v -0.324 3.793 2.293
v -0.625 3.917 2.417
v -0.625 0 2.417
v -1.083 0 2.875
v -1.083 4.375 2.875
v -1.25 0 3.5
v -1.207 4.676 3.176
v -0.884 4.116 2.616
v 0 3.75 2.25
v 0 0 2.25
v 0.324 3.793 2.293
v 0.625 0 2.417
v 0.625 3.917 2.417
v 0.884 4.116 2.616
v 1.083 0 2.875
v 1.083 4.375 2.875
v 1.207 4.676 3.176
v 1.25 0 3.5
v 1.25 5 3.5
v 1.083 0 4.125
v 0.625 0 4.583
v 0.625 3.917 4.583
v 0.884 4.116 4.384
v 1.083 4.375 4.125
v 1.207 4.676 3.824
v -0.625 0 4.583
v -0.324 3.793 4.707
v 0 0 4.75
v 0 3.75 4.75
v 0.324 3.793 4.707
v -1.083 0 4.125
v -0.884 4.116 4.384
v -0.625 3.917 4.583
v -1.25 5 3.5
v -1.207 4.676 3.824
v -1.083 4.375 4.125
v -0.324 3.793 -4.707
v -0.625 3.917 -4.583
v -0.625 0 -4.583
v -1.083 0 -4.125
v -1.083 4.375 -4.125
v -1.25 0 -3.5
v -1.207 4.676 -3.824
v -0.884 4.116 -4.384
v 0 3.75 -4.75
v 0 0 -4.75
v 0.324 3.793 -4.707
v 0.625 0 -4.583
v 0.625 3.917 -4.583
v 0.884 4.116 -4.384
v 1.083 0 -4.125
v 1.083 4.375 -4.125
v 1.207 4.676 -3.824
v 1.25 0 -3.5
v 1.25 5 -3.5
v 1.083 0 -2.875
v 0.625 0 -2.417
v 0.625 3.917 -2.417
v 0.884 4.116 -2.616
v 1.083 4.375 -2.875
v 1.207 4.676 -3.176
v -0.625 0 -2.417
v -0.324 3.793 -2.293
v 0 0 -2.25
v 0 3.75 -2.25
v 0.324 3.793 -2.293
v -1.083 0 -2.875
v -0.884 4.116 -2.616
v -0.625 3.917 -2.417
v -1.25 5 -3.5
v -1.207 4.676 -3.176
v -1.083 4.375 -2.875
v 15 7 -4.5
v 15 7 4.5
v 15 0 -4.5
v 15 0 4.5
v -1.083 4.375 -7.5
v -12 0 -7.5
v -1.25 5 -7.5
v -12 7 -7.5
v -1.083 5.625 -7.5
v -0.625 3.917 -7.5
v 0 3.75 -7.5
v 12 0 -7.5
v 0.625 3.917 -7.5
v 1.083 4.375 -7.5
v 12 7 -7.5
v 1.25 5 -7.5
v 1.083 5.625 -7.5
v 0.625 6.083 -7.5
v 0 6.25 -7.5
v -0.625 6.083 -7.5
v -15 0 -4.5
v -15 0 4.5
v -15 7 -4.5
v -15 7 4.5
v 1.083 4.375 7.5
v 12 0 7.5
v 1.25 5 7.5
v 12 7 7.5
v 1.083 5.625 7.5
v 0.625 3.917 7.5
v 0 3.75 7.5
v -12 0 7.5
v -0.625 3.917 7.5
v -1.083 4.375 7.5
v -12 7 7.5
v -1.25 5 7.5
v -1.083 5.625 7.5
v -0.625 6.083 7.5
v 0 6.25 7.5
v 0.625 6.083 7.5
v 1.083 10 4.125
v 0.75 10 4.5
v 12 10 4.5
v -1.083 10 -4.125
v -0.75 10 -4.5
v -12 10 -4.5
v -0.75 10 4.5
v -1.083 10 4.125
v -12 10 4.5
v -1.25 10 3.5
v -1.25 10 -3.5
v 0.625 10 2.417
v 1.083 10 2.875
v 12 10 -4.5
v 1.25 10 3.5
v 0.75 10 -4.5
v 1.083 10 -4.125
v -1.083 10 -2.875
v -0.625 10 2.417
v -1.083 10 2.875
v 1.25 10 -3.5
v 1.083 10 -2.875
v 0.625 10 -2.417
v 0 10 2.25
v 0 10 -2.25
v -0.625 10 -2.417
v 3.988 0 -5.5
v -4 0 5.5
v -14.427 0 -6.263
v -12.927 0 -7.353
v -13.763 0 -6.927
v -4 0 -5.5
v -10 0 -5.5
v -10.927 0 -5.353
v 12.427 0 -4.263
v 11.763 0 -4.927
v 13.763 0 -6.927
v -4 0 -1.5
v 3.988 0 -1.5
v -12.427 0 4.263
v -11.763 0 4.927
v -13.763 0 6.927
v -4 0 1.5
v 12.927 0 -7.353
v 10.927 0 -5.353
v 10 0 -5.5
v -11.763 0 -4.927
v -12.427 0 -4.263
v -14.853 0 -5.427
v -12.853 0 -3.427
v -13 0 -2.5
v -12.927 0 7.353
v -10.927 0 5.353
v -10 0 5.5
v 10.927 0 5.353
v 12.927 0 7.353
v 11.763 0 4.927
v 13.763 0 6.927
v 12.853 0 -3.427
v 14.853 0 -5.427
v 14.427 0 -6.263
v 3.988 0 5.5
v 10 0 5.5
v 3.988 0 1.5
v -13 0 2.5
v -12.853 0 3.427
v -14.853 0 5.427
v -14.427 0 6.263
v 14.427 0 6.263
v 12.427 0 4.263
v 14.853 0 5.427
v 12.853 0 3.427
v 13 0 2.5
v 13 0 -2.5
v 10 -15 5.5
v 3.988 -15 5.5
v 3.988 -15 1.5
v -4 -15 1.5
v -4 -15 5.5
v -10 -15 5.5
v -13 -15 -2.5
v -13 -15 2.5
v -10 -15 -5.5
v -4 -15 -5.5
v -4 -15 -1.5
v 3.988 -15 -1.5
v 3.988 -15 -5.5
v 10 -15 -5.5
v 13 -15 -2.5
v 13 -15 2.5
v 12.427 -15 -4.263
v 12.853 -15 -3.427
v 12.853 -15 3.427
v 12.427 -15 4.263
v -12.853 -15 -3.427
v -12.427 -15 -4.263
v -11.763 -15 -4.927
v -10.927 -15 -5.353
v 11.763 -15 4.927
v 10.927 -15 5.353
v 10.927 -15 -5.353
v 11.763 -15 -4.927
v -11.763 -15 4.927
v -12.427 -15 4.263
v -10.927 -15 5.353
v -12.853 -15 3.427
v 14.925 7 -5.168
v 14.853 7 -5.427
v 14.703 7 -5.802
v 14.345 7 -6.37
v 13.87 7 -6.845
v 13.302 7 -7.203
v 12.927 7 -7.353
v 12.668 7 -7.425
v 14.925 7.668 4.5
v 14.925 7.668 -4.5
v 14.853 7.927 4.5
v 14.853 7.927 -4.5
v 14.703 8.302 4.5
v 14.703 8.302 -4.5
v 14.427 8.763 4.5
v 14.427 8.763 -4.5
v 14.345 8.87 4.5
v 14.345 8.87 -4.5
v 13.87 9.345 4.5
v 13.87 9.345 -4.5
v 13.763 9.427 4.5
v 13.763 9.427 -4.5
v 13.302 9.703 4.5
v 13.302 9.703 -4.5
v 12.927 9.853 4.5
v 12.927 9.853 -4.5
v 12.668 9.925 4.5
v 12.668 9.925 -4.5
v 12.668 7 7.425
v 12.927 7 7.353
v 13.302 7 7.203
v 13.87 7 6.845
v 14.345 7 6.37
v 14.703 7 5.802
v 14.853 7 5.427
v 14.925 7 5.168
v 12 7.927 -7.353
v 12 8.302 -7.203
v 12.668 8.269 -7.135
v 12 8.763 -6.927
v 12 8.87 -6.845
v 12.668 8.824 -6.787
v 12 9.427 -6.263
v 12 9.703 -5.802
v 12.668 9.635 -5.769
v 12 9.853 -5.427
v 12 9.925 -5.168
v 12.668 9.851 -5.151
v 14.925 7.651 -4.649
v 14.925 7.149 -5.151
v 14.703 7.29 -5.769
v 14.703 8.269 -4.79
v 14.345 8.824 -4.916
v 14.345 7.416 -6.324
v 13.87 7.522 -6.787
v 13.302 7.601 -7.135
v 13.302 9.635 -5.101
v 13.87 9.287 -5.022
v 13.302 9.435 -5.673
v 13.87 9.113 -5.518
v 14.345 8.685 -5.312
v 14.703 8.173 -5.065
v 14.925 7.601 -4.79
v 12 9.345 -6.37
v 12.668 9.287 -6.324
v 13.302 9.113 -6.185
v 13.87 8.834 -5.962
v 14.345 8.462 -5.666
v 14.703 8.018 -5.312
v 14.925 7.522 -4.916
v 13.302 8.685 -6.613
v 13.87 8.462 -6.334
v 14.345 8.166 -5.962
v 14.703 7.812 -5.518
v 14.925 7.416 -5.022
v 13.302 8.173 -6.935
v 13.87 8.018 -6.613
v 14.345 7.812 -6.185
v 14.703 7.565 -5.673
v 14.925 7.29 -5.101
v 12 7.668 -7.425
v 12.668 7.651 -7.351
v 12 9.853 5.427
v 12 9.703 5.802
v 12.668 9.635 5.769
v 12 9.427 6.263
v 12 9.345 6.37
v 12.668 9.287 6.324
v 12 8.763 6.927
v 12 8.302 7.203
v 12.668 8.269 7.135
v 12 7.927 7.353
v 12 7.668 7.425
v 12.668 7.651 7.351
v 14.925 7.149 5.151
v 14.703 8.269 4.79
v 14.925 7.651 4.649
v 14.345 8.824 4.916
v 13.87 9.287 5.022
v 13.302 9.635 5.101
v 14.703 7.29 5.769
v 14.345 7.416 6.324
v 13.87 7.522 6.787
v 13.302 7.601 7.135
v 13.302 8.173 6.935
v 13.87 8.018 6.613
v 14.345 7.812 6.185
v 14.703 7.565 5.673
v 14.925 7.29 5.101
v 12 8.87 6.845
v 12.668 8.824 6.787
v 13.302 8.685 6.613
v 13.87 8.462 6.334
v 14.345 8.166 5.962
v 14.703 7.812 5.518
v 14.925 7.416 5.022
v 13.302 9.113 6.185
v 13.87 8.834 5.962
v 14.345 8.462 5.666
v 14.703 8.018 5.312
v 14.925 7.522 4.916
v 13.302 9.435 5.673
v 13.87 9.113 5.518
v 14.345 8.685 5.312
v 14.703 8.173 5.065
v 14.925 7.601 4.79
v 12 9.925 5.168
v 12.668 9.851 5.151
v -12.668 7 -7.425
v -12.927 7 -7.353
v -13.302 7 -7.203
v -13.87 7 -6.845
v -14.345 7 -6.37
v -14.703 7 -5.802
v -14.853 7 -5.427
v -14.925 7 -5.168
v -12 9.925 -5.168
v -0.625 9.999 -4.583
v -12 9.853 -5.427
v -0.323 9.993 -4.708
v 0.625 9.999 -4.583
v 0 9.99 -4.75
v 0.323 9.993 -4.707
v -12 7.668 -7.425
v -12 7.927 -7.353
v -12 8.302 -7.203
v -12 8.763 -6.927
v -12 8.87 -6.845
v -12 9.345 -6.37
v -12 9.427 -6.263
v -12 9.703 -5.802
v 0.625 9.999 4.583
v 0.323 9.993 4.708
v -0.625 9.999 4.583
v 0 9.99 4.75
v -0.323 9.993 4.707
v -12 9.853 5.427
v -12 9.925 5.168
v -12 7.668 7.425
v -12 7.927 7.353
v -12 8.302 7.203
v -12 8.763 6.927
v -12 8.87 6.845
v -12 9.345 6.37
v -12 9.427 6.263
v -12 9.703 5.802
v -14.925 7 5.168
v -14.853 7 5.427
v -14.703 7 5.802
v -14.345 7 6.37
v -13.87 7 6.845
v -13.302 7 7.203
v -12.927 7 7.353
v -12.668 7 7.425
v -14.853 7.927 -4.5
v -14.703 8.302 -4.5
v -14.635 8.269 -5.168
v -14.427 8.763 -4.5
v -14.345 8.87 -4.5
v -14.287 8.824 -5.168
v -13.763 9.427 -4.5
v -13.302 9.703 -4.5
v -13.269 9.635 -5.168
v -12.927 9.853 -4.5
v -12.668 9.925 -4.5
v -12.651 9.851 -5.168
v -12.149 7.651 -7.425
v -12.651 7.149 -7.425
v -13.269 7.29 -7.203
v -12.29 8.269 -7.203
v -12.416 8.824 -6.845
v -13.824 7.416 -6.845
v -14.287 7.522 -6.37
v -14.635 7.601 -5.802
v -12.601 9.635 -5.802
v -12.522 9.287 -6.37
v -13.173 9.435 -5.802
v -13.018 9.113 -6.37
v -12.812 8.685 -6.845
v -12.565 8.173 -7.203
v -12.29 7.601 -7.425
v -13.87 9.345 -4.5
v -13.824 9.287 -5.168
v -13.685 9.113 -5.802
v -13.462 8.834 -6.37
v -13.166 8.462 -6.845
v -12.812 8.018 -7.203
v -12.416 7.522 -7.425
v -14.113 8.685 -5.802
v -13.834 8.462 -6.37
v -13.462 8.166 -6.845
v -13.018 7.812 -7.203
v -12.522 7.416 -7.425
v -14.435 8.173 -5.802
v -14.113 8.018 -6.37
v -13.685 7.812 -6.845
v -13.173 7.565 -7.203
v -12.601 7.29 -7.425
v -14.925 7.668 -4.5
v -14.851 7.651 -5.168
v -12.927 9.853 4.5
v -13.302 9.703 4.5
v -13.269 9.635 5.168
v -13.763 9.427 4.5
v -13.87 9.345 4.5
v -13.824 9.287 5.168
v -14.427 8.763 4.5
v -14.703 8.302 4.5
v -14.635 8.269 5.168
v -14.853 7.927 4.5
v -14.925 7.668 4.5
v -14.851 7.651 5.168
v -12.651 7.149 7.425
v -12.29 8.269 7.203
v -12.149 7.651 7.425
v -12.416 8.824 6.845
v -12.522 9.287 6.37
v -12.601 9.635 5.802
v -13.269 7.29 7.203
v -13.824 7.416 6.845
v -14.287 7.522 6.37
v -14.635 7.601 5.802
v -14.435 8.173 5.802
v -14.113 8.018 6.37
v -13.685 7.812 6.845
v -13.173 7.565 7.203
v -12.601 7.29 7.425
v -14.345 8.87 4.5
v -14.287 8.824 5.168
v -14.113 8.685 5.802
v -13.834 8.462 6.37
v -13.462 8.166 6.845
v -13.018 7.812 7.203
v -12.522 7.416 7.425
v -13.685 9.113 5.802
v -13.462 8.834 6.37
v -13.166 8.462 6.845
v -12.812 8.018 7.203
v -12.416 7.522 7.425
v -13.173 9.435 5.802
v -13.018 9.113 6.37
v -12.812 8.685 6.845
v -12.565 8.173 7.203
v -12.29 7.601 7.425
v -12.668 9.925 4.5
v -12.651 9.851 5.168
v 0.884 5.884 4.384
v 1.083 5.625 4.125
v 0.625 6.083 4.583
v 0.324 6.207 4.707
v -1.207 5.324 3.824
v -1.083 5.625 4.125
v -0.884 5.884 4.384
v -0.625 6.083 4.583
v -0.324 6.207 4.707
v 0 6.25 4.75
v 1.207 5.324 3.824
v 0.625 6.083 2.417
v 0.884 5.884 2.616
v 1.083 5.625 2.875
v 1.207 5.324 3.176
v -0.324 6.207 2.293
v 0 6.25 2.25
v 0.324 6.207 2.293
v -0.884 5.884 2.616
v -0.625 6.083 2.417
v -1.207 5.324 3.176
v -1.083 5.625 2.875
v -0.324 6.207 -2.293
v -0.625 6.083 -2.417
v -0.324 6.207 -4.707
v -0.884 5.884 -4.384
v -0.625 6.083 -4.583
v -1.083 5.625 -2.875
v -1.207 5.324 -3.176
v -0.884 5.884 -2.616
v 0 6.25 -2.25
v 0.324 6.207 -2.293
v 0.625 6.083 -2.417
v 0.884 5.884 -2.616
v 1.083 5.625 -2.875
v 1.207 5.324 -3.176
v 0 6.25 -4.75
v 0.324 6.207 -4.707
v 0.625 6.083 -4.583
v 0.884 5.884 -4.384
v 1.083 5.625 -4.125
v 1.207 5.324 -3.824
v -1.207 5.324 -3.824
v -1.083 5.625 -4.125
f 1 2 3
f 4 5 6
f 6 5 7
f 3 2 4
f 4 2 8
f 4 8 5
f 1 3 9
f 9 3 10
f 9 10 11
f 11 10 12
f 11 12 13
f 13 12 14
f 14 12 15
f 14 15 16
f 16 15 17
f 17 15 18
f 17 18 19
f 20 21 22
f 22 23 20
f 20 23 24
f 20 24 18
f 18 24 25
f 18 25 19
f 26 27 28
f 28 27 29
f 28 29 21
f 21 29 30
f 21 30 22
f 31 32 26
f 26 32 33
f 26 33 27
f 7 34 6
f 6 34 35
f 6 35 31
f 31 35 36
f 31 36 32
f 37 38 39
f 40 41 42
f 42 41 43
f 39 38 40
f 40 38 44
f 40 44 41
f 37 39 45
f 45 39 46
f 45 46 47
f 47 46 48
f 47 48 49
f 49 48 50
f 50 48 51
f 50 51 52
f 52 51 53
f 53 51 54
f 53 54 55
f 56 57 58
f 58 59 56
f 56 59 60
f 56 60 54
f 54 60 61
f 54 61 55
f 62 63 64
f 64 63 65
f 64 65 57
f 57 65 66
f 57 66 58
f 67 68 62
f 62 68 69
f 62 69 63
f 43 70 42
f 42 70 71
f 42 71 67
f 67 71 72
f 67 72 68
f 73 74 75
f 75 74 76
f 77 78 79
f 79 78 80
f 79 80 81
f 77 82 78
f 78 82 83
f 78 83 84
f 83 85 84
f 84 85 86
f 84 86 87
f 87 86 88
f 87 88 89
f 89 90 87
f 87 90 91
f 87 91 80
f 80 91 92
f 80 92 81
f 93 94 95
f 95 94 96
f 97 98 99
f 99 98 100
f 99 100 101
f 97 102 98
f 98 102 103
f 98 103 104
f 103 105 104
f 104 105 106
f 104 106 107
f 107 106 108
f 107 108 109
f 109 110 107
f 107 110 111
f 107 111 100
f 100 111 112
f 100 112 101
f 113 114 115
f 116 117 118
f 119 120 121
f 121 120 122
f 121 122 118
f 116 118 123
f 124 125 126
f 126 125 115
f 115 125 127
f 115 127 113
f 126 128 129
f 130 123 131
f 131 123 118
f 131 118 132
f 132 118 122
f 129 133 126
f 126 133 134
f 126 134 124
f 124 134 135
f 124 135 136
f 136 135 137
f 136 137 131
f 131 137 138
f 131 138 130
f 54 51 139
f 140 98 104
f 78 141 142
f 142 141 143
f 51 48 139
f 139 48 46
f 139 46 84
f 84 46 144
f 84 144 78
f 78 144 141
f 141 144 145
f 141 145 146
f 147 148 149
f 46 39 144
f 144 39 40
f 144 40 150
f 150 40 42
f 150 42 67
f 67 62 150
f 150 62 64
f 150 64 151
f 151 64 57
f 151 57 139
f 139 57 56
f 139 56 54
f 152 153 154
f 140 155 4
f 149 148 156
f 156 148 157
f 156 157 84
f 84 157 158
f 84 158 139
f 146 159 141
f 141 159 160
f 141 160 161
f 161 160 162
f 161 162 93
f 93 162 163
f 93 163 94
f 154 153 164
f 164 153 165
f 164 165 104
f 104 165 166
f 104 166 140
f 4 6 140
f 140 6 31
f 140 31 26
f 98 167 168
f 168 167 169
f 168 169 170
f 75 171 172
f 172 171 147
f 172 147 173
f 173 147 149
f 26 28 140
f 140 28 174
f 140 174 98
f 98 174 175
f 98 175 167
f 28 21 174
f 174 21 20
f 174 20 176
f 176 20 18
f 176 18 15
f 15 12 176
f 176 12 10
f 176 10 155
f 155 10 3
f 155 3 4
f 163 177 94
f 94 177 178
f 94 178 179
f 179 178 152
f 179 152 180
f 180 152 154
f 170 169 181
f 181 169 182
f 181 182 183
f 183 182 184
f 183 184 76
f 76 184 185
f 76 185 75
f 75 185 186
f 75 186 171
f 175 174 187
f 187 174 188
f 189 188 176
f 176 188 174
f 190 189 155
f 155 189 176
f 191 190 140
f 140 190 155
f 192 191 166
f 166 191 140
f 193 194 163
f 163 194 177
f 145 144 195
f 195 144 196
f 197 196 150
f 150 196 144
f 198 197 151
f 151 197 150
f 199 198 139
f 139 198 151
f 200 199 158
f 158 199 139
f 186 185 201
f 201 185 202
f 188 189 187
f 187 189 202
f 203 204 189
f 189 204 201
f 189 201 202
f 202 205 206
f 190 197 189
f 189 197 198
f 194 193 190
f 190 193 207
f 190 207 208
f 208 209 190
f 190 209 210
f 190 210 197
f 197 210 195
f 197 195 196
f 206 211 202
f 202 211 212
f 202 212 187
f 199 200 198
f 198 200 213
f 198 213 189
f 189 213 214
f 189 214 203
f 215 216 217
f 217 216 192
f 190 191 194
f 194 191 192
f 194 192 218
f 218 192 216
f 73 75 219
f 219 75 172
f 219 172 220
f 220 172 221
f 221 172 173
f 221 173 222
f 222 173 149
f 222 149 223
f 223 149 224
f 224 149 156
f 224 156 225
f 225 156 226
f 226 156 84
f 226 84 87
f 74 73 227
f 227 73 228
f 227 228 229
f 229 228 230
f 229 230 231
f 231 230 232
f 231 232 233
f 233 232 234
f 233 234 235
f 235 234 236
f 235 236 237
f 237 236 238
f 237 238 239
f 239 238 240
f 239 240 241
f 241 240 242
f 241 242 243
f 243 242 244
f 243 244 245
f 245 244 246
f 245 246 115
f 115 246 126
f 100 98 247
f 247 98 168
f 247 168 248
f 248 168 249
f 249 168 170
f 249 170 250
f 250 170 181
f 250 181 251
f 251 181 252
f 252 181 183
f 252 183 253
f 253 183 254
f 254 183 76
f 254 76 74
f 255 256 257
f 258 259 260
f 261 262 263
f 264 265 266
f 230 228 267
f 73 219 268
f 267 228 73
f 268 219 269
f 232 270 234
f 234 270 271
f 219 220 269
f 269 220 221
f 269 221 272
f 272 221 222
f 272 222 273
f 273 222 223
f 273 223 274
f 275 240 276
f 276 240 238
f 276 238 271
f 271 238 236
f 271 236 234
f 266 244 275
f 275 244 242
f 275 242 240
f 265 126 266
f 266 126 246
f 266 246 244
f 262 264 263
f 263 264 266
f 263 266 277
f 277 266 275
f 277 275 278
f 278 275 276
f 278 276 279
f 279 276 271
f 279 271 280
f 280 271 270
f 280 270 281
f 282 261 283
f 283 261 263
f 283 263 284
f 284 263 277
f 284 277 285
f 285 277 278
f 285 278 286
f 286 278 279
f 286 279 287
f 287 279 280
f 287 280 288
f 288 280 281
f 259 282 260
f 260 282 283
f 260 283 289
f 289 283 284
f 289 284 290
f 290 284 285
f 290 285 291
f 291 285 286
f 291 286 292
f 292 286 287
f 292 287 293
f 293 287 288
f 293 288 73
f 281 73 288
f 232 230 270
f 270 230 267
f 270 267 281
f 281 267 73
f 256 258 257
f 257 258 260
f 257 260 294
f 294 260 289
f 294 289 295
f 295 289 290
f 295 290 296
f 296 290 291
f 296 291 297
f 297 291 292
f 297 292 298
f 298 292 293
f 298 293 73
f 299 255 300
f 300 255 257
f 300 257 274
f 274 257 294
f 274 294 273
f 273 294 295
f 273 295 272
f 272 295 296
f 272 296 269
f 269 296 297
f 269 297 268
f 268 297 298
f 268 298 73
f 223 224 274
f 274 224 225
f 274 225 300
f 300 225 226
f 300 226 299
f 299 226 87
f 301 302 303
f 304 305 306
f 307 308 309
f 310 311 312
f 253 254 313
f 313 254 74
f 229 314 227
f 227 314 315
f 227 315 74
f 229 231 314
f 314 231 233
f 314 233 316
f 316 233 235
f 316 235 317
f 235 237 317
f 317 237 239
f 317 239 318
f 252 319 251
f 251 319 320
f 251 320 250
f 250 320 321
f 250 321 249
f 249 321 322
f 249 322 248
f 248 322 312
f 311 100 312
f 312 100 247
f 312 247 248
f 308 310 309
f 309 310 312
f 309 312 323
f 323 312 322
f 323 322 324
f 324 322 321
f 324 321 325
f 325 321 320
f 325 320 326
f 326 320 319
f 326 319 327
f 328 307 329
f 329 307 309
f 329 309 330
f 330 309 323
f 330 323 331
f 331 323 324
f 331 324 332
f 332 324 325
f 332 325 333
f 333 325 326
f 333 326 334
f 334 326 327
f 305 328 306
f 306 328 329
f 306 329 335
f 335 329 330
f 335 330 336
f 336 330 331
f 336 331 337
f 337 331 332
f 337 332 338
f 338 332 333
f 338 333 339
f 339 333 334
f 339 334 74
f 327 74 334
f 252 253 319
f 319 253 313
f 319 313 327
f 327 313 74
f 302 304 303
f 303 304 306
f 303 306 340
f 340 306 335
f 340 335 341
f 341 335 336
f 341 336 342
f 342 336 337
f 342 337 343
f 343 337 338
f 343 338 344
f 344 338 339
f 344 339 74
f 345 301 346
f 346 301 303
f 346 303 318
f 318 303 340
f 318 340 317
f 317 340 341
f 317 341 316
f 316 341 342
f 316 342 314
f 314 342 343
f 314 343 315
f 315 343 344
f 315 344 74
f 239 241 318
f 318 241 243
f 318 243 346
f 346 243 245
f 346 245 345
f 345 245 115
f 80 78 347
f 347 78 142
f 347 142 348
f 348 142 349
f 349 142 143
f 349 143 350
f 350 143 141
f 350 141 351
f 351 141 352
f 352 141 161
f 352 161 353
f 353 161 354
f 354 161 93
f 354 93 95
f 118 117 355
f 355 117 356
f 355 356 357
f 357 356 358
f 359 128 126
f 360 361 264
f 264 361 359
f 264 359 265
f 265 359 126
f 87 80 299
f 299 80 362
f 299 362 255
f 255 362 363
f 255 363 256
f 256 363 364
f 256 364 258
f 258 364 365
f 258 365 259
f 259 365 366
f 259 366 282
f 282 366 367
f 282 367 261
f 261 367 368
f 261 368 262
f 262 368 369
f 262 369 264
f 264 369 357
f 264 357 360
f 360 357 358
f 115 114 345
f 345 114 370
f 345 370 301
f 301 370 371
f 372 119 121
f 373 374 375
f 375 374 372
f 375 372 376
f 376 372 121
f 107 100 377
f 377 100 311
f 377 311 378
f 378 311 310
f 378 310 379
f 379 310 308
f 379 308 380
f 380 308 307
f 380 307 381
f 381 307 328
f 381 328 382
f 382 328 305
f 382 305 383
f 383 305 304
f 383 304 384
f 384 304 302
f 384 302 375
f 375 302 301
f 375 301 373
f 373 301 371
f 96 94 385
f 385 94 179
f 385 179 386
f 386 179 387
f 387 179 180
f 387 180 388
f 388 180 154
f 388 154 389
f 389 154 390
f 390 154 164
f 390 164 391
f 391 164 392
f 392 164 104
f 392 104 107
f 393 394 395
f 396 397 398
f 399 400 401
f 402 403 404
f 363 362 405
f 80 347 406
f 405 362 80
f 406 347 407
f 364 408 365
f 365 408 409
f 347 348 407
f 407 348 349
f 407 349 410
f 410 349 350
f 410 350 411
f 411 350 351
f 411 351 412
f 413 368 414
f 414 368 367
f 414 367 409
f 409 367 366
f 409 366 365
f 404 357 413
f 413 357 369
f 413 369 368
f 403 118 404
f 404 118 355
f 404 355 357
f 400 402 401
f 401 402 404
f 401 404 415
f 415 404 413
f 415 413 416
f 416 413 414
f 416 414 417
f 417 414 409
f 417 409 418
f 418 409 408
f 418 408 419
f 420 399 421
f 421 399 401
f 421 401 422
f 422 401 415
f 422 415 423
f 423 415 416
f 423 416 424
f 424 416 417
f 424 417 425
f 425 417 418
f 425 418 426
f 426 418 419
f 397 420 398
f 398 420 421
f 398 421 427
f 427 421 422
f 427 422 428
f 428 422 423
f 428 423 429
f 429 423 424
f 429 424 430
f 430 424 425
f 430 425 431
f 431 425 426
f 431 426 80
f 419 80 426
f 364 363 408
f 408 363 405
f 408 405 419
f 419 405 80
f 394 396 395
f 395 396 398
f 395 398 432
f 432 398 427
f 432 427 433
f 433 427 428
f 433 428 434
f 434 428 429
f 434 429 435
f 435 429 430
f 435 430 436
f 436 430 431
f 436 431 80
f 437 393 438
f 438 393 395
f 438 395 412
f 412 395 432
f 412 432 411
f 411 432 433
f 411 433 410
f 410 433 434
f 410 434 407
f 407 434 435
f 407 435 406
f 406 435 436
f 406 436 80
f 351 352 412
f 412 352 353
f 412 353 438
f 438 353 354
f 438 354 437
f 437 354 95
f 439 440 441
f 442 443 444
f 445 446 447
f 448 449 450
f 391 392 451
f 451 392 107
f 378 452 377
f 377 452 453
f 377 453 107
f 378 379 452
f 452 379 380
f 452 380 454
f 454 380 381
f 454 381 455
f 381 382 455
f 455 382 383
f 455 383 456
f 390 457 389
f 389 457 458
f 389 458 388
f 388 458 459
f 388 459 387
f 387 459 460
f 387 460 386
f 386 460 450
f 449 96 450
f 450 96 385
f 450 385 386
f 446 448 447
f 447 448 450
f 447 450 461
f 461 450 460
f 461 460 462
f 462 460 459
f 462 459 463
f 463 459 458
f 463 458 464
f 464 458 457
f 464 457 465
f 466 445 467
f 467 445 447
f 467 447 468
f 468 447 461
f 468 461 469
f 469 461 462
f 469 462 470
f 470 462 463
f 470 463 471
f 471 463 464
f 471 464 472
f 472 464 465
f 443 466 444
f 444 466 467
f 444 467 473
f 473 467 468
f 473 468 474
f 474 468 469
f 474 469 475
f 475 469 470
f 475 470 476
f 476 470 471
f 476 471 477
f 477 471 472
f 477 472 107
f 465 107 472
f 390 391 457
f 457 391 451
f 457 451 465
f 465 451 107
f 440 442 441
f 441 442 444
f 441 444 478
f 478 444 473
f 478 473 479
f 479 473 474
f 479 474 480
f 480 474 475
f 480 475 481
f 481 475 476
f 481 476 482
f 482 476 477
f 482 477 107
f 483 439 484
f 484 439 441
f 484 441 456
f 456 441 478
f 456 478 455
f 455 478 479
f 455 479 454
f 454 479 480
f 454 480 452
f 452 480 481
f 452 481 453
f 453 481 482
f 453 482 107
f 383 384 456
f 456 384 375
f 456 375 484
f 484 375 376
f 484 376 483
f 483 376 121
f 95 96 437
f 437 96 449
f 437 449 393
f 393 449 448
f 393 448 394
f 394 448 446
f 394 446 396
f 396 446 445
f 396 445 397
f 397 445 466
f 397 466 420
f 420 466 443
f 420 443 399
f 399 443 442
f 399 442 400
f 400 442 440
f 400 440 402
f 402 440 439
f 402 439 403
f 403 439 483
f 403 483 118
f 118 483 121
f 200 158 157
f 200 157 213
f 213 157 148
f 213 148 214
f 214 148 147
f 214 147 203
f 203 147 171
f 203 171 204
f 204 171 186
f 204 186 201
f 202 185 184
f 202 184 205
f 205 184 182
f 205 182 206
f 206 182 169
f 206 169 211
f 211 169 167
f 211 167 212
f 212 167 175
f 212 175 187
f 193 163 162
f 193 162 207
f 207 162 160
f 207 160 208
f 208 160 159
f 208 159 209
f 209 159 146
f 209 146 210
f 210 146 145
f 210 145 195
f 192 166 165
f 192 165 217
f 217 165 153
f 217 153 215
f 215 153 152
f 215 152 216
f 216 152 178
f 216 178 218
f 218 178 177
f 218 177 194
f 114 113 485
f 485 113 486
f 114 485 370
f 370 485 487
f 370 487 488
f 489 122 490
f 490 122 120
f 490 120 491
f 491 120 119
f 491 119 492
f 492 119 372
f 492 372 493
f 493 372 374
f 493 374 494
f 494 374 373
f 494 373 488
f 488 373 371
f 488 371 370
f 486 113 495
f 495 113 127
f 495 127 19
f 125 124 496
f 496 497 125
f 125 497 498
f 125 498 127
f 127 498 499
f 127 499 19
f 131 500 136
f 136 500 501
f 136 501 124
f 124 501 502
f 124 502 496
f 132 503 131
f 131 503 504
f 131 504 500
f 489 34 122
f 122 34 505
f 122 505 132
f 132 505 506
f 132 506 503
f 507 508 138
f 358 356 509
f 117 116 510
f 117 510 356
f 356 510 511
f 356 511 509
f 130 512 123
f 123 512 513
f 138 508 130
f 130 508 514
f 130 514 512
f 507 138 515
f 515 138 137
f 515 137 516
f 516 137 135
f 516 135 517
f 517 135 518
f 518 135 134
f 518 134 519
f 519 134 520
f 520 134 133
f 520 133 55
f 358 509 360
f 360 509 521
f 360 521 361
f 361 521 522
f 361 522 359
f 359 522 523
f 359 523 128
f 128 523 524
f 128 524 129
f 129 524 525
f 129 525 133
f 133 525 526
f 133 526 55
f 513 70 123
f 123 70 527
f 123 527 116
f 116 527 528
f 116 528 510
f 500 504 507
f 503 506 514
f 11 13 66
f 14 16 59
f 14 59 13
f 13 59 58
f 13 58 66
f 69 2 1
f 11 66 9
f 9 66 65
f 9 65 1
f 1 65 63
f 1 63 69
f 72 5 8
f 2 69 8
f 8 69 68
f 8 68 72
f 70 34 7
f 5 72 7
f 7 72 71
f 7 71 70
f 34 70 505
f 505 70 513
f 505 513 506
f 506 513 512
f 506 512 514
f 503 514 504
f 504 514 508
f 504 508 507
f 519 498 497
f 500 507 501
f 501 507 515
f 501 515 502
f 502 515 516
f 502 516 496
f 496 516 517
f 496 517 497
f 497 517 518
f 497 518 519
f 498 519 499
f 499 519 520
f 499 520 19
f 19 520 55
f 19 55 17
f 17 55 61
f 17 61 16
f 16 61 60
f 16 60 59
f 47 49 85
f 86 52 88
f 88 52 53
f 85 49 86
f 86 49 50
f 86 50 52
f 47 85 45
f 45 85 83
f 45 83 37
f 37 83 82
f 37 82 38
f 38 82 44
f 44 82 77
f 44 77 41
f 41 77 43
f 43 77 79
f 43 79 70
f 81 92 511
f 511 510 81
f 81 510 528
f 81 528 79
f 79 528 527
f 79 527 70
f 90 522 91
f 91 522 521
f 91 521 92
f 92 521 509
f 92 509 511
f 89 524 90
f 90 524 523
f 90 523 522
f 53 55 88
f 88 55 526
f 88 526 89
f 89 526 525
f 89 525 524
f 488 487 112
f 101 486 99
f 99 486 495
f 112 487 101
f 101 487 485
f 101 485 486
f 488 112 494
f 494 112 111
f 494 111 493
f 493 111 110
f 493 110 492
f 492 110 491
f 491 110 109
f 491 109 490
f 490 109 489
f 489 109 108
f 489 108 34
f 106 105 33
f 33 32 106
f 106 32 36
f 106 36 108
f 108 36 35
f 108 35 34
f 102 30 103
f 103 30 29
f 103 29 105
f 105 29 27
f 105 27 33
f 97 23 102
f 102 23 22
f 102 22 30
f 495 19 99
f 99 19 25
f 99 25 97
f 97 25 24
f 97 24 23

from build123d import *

# Parameters (mm, degrees)
SKETCH1_W           = 30
SKETCH1_H           = 15
BOSS_EXTRUDE1_DEPTH = 10
BOSS_EXTRUDE2_DEPTH = 15
FILLET1_R           = 3
SKETCH3_R           = 1.25
CUT_EXTRUDE1_DEPTH  = 11
SKETCH4_R           = 1.25
CUT_EXTRUDE2_DEPTH  = 16.0000001


with BuildPart() as part:
    # Sketch1 → Boss-Extrude1 (new body)
    with BuildSketch(Plane(origin=(0, 0, 0), x_dir=(1, 0, 0), z_dir=(0, 1, 0))):
        Rectangle(SKETCH1_W, SKETCH1_H)
    extrude(amount=BOSS_EXTRUDE1_DEPTH)

    # Sketch2 → Boss-Extrude2 (add)
    with BuildSketch(Plane.XZ):
        Polygon((-13, -5.5), (-4, -5.5), (-4, -1.5), (4, -1.5), (4, -5.5), (13, -5.5), (13, 5.5), (4, 5.5), (4, 1.5), (-4, 1.5), (-4, 5.5), (-13, 5.5), align=None)
    extrude(amount=BOSS_EXTRUDE2_DEPTH)

    # Fillet1
    fillet1_edges = [part.edges().sort_by_distance(p)[0] for p in [
        (-15, 10, 0),
        (0, 10, 7.5),
        (13, -7.5, 5.5),
        (-13, -7.5, 5.5),
        (-13, -7.5, -5.5),
        (13, -7.5, -5.5),
        (15, 10, 0),
        (15, 5, 7.5),
        (-15, 5, 7.5),
        (-15, 5, -7.5),
        (15, 5, -7.5),
        (0, 10, -7.5),
    ]]
    fillet(fillet1_edges, radius=FILLET1_R)

    # Sketch3 → Cut-Extrude1 (cut, through all)
    with BuildSketch(Plane.XZ):
        with Locations((0, 3.5)):
            Circle(SKETCH3_R)
        with Locations((0, -3.5)):
            Circle(SKETCH3_R)
    extrude(amount=-CUT_EXTRUDE1_DEPTH, mode=Mode.SUBTRACT)

    # Sketch4 → Cut-Extrude2 (cut, through all)
    with BuildSketch(Plane.XY.offset(7.5)):
        with Locations((0, 5)):
            Circle(SKETCH4_R)
    extrude(amount=-CUT_EXTRUDE2_DEPTH, mode=Mode.SUBTRACT)


solid = part.part
